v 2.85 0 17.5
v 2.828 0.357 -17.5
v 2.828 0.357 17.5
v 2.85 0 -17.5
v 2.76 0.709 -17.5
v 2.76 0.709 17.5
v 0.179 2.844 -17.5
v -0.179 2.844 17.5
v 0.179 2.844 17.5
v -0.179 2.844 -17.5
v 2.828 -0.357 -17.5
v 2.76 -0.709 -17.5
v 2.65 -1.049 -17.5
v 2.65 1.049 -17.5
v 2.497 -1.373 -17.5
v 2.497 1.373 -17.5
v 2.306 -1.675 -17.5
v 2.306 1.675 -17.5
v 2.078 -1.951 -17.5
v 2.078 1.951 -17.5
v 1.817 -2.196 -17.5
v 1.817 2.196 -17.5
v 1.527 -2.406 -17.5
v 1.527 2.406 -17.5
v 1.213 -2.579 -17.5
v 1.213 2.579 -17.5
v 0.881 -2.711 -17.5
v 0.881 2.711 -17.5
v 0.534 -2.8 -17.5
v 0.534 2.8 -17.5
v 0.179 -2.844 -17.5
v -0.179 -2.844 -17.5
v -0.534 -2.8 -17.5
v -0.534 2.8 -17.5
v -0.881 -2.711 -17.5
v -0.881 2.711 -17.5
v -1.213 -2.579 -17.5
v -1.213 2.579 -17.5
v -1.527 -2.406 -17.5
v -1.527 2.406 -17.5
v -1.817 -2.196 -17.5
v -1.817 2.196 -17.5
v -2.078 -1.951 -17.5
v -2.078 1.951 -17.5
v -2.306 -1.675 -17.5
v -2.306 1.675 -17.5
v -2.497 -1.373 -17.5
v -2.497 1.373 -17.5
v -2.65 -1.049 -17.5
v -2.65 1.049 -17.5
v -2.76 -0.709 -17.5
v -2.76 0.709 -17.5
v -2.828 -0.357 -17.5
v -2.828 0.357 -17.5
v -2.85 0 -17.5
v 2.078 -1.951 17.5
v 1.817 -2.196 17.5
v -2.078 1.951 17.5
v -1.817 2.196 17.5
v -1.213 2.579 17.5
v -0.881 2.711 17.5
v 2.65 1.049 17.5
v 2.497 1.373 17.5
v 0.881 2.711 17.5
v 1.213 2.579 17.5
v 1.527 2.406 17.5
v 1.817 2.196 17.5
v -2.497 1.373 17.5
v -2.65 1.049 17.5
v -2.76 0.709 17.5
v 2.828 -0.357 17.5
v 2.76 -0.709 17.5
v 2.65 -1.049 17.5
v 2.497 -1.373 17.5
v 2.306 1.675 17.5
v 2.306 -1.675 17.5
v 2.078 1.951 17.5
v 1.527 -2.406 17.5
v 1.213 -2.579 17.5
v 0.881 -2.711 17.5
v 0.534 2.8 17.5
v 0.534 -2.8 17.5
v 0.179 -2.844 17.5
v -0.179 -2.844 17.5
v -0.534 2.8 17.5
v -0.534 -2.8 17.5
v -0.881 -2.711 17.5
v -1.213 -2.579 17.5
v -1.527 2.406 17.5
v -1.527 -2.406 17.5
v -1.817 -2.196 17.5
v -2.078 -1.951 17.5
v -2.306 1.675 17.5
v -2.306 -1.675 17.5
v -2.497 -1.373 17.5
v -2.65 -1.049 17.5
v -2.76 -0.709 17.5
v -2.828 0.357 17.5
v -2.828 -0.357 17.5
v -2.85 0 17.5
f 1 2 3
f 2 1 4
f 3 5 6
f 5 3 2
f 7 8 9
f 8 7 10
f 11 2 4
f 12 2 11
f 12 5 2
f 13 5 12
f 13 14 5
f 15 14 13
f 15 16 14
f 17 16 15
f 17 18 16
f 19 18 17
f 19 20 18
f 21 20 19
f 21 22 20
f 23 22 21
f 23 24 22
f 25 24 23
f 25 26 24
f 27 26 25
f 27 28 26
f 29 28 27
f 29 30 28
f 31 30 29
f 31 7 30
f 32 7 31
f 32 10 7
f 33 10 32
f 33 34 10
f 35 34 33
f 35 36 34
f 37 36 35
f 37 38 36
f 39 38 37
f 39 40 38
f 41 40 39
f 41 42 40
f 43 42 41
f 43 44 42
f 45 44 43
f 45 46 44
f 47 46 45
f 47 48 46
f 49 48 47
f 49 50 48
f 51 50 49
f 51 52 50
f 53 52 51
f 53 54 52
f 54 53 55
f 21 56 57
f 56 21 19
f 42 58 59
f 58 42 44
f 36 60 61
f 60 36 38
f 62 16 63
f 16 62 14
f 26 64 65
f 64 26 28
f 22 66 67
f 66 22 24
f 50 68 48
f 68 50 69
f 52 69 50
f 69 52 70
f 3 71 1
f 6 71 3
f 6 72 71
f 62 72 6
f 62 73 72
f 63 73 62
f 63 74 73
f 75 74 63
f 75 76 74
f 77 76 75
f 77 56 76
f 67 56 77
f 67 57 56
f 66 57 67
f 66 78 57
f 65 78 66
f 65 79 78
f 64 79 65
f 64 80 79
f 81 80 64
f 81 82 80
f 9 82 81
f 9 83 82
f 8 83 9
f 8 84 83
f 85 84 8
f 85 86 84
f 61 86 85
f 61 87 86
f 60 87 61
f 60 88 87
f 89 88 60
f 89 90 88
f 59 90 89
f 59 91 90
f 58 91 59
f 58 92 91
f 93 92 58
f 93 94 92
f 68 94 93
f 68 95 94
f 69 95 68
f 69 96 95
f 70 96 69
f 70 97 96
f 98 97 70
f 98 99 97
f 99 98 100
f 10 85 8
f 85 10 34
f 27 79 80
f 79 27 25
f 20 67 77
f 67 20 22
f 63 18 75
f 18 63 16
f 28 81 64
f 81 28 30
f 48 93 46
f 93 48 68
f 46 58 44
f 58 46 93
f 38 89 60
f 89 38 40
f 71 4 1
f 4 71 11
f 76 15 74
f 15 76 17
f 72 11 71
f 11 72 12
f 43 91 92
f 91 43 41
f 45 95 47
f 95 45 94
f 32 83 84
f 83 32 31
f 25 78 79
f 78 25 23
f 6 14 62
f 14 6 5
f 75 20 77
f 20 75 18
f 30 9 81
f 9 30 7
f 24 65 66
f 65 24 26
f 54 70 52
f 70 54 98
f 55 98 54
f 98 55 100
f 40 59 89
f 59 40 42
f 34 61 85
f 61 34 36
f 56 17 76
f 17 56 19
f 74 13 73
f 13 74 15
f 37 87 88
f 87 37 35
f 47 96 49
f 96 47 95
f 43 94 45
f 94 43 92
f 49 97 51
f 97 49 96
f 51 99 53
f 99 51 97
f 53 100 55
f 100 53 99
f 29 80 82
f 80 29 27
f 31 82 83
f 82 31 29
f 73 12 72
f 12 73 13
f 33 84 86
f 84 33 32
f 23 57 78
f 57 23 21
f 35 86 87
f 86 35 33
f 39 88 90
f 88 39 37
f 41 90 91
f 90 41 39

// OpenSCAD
$fn = 50;


difference() {
	union() {
		translate(v = [0, 0, -17.5000000000]) {
			cylinder(h = 35, r = 2.8500000000);
		}
	}
	union() {
		translate(v = [0, 0, -100.0000000000]) {
			cylinder(h = 200, r = 0);
		}
	}
}
